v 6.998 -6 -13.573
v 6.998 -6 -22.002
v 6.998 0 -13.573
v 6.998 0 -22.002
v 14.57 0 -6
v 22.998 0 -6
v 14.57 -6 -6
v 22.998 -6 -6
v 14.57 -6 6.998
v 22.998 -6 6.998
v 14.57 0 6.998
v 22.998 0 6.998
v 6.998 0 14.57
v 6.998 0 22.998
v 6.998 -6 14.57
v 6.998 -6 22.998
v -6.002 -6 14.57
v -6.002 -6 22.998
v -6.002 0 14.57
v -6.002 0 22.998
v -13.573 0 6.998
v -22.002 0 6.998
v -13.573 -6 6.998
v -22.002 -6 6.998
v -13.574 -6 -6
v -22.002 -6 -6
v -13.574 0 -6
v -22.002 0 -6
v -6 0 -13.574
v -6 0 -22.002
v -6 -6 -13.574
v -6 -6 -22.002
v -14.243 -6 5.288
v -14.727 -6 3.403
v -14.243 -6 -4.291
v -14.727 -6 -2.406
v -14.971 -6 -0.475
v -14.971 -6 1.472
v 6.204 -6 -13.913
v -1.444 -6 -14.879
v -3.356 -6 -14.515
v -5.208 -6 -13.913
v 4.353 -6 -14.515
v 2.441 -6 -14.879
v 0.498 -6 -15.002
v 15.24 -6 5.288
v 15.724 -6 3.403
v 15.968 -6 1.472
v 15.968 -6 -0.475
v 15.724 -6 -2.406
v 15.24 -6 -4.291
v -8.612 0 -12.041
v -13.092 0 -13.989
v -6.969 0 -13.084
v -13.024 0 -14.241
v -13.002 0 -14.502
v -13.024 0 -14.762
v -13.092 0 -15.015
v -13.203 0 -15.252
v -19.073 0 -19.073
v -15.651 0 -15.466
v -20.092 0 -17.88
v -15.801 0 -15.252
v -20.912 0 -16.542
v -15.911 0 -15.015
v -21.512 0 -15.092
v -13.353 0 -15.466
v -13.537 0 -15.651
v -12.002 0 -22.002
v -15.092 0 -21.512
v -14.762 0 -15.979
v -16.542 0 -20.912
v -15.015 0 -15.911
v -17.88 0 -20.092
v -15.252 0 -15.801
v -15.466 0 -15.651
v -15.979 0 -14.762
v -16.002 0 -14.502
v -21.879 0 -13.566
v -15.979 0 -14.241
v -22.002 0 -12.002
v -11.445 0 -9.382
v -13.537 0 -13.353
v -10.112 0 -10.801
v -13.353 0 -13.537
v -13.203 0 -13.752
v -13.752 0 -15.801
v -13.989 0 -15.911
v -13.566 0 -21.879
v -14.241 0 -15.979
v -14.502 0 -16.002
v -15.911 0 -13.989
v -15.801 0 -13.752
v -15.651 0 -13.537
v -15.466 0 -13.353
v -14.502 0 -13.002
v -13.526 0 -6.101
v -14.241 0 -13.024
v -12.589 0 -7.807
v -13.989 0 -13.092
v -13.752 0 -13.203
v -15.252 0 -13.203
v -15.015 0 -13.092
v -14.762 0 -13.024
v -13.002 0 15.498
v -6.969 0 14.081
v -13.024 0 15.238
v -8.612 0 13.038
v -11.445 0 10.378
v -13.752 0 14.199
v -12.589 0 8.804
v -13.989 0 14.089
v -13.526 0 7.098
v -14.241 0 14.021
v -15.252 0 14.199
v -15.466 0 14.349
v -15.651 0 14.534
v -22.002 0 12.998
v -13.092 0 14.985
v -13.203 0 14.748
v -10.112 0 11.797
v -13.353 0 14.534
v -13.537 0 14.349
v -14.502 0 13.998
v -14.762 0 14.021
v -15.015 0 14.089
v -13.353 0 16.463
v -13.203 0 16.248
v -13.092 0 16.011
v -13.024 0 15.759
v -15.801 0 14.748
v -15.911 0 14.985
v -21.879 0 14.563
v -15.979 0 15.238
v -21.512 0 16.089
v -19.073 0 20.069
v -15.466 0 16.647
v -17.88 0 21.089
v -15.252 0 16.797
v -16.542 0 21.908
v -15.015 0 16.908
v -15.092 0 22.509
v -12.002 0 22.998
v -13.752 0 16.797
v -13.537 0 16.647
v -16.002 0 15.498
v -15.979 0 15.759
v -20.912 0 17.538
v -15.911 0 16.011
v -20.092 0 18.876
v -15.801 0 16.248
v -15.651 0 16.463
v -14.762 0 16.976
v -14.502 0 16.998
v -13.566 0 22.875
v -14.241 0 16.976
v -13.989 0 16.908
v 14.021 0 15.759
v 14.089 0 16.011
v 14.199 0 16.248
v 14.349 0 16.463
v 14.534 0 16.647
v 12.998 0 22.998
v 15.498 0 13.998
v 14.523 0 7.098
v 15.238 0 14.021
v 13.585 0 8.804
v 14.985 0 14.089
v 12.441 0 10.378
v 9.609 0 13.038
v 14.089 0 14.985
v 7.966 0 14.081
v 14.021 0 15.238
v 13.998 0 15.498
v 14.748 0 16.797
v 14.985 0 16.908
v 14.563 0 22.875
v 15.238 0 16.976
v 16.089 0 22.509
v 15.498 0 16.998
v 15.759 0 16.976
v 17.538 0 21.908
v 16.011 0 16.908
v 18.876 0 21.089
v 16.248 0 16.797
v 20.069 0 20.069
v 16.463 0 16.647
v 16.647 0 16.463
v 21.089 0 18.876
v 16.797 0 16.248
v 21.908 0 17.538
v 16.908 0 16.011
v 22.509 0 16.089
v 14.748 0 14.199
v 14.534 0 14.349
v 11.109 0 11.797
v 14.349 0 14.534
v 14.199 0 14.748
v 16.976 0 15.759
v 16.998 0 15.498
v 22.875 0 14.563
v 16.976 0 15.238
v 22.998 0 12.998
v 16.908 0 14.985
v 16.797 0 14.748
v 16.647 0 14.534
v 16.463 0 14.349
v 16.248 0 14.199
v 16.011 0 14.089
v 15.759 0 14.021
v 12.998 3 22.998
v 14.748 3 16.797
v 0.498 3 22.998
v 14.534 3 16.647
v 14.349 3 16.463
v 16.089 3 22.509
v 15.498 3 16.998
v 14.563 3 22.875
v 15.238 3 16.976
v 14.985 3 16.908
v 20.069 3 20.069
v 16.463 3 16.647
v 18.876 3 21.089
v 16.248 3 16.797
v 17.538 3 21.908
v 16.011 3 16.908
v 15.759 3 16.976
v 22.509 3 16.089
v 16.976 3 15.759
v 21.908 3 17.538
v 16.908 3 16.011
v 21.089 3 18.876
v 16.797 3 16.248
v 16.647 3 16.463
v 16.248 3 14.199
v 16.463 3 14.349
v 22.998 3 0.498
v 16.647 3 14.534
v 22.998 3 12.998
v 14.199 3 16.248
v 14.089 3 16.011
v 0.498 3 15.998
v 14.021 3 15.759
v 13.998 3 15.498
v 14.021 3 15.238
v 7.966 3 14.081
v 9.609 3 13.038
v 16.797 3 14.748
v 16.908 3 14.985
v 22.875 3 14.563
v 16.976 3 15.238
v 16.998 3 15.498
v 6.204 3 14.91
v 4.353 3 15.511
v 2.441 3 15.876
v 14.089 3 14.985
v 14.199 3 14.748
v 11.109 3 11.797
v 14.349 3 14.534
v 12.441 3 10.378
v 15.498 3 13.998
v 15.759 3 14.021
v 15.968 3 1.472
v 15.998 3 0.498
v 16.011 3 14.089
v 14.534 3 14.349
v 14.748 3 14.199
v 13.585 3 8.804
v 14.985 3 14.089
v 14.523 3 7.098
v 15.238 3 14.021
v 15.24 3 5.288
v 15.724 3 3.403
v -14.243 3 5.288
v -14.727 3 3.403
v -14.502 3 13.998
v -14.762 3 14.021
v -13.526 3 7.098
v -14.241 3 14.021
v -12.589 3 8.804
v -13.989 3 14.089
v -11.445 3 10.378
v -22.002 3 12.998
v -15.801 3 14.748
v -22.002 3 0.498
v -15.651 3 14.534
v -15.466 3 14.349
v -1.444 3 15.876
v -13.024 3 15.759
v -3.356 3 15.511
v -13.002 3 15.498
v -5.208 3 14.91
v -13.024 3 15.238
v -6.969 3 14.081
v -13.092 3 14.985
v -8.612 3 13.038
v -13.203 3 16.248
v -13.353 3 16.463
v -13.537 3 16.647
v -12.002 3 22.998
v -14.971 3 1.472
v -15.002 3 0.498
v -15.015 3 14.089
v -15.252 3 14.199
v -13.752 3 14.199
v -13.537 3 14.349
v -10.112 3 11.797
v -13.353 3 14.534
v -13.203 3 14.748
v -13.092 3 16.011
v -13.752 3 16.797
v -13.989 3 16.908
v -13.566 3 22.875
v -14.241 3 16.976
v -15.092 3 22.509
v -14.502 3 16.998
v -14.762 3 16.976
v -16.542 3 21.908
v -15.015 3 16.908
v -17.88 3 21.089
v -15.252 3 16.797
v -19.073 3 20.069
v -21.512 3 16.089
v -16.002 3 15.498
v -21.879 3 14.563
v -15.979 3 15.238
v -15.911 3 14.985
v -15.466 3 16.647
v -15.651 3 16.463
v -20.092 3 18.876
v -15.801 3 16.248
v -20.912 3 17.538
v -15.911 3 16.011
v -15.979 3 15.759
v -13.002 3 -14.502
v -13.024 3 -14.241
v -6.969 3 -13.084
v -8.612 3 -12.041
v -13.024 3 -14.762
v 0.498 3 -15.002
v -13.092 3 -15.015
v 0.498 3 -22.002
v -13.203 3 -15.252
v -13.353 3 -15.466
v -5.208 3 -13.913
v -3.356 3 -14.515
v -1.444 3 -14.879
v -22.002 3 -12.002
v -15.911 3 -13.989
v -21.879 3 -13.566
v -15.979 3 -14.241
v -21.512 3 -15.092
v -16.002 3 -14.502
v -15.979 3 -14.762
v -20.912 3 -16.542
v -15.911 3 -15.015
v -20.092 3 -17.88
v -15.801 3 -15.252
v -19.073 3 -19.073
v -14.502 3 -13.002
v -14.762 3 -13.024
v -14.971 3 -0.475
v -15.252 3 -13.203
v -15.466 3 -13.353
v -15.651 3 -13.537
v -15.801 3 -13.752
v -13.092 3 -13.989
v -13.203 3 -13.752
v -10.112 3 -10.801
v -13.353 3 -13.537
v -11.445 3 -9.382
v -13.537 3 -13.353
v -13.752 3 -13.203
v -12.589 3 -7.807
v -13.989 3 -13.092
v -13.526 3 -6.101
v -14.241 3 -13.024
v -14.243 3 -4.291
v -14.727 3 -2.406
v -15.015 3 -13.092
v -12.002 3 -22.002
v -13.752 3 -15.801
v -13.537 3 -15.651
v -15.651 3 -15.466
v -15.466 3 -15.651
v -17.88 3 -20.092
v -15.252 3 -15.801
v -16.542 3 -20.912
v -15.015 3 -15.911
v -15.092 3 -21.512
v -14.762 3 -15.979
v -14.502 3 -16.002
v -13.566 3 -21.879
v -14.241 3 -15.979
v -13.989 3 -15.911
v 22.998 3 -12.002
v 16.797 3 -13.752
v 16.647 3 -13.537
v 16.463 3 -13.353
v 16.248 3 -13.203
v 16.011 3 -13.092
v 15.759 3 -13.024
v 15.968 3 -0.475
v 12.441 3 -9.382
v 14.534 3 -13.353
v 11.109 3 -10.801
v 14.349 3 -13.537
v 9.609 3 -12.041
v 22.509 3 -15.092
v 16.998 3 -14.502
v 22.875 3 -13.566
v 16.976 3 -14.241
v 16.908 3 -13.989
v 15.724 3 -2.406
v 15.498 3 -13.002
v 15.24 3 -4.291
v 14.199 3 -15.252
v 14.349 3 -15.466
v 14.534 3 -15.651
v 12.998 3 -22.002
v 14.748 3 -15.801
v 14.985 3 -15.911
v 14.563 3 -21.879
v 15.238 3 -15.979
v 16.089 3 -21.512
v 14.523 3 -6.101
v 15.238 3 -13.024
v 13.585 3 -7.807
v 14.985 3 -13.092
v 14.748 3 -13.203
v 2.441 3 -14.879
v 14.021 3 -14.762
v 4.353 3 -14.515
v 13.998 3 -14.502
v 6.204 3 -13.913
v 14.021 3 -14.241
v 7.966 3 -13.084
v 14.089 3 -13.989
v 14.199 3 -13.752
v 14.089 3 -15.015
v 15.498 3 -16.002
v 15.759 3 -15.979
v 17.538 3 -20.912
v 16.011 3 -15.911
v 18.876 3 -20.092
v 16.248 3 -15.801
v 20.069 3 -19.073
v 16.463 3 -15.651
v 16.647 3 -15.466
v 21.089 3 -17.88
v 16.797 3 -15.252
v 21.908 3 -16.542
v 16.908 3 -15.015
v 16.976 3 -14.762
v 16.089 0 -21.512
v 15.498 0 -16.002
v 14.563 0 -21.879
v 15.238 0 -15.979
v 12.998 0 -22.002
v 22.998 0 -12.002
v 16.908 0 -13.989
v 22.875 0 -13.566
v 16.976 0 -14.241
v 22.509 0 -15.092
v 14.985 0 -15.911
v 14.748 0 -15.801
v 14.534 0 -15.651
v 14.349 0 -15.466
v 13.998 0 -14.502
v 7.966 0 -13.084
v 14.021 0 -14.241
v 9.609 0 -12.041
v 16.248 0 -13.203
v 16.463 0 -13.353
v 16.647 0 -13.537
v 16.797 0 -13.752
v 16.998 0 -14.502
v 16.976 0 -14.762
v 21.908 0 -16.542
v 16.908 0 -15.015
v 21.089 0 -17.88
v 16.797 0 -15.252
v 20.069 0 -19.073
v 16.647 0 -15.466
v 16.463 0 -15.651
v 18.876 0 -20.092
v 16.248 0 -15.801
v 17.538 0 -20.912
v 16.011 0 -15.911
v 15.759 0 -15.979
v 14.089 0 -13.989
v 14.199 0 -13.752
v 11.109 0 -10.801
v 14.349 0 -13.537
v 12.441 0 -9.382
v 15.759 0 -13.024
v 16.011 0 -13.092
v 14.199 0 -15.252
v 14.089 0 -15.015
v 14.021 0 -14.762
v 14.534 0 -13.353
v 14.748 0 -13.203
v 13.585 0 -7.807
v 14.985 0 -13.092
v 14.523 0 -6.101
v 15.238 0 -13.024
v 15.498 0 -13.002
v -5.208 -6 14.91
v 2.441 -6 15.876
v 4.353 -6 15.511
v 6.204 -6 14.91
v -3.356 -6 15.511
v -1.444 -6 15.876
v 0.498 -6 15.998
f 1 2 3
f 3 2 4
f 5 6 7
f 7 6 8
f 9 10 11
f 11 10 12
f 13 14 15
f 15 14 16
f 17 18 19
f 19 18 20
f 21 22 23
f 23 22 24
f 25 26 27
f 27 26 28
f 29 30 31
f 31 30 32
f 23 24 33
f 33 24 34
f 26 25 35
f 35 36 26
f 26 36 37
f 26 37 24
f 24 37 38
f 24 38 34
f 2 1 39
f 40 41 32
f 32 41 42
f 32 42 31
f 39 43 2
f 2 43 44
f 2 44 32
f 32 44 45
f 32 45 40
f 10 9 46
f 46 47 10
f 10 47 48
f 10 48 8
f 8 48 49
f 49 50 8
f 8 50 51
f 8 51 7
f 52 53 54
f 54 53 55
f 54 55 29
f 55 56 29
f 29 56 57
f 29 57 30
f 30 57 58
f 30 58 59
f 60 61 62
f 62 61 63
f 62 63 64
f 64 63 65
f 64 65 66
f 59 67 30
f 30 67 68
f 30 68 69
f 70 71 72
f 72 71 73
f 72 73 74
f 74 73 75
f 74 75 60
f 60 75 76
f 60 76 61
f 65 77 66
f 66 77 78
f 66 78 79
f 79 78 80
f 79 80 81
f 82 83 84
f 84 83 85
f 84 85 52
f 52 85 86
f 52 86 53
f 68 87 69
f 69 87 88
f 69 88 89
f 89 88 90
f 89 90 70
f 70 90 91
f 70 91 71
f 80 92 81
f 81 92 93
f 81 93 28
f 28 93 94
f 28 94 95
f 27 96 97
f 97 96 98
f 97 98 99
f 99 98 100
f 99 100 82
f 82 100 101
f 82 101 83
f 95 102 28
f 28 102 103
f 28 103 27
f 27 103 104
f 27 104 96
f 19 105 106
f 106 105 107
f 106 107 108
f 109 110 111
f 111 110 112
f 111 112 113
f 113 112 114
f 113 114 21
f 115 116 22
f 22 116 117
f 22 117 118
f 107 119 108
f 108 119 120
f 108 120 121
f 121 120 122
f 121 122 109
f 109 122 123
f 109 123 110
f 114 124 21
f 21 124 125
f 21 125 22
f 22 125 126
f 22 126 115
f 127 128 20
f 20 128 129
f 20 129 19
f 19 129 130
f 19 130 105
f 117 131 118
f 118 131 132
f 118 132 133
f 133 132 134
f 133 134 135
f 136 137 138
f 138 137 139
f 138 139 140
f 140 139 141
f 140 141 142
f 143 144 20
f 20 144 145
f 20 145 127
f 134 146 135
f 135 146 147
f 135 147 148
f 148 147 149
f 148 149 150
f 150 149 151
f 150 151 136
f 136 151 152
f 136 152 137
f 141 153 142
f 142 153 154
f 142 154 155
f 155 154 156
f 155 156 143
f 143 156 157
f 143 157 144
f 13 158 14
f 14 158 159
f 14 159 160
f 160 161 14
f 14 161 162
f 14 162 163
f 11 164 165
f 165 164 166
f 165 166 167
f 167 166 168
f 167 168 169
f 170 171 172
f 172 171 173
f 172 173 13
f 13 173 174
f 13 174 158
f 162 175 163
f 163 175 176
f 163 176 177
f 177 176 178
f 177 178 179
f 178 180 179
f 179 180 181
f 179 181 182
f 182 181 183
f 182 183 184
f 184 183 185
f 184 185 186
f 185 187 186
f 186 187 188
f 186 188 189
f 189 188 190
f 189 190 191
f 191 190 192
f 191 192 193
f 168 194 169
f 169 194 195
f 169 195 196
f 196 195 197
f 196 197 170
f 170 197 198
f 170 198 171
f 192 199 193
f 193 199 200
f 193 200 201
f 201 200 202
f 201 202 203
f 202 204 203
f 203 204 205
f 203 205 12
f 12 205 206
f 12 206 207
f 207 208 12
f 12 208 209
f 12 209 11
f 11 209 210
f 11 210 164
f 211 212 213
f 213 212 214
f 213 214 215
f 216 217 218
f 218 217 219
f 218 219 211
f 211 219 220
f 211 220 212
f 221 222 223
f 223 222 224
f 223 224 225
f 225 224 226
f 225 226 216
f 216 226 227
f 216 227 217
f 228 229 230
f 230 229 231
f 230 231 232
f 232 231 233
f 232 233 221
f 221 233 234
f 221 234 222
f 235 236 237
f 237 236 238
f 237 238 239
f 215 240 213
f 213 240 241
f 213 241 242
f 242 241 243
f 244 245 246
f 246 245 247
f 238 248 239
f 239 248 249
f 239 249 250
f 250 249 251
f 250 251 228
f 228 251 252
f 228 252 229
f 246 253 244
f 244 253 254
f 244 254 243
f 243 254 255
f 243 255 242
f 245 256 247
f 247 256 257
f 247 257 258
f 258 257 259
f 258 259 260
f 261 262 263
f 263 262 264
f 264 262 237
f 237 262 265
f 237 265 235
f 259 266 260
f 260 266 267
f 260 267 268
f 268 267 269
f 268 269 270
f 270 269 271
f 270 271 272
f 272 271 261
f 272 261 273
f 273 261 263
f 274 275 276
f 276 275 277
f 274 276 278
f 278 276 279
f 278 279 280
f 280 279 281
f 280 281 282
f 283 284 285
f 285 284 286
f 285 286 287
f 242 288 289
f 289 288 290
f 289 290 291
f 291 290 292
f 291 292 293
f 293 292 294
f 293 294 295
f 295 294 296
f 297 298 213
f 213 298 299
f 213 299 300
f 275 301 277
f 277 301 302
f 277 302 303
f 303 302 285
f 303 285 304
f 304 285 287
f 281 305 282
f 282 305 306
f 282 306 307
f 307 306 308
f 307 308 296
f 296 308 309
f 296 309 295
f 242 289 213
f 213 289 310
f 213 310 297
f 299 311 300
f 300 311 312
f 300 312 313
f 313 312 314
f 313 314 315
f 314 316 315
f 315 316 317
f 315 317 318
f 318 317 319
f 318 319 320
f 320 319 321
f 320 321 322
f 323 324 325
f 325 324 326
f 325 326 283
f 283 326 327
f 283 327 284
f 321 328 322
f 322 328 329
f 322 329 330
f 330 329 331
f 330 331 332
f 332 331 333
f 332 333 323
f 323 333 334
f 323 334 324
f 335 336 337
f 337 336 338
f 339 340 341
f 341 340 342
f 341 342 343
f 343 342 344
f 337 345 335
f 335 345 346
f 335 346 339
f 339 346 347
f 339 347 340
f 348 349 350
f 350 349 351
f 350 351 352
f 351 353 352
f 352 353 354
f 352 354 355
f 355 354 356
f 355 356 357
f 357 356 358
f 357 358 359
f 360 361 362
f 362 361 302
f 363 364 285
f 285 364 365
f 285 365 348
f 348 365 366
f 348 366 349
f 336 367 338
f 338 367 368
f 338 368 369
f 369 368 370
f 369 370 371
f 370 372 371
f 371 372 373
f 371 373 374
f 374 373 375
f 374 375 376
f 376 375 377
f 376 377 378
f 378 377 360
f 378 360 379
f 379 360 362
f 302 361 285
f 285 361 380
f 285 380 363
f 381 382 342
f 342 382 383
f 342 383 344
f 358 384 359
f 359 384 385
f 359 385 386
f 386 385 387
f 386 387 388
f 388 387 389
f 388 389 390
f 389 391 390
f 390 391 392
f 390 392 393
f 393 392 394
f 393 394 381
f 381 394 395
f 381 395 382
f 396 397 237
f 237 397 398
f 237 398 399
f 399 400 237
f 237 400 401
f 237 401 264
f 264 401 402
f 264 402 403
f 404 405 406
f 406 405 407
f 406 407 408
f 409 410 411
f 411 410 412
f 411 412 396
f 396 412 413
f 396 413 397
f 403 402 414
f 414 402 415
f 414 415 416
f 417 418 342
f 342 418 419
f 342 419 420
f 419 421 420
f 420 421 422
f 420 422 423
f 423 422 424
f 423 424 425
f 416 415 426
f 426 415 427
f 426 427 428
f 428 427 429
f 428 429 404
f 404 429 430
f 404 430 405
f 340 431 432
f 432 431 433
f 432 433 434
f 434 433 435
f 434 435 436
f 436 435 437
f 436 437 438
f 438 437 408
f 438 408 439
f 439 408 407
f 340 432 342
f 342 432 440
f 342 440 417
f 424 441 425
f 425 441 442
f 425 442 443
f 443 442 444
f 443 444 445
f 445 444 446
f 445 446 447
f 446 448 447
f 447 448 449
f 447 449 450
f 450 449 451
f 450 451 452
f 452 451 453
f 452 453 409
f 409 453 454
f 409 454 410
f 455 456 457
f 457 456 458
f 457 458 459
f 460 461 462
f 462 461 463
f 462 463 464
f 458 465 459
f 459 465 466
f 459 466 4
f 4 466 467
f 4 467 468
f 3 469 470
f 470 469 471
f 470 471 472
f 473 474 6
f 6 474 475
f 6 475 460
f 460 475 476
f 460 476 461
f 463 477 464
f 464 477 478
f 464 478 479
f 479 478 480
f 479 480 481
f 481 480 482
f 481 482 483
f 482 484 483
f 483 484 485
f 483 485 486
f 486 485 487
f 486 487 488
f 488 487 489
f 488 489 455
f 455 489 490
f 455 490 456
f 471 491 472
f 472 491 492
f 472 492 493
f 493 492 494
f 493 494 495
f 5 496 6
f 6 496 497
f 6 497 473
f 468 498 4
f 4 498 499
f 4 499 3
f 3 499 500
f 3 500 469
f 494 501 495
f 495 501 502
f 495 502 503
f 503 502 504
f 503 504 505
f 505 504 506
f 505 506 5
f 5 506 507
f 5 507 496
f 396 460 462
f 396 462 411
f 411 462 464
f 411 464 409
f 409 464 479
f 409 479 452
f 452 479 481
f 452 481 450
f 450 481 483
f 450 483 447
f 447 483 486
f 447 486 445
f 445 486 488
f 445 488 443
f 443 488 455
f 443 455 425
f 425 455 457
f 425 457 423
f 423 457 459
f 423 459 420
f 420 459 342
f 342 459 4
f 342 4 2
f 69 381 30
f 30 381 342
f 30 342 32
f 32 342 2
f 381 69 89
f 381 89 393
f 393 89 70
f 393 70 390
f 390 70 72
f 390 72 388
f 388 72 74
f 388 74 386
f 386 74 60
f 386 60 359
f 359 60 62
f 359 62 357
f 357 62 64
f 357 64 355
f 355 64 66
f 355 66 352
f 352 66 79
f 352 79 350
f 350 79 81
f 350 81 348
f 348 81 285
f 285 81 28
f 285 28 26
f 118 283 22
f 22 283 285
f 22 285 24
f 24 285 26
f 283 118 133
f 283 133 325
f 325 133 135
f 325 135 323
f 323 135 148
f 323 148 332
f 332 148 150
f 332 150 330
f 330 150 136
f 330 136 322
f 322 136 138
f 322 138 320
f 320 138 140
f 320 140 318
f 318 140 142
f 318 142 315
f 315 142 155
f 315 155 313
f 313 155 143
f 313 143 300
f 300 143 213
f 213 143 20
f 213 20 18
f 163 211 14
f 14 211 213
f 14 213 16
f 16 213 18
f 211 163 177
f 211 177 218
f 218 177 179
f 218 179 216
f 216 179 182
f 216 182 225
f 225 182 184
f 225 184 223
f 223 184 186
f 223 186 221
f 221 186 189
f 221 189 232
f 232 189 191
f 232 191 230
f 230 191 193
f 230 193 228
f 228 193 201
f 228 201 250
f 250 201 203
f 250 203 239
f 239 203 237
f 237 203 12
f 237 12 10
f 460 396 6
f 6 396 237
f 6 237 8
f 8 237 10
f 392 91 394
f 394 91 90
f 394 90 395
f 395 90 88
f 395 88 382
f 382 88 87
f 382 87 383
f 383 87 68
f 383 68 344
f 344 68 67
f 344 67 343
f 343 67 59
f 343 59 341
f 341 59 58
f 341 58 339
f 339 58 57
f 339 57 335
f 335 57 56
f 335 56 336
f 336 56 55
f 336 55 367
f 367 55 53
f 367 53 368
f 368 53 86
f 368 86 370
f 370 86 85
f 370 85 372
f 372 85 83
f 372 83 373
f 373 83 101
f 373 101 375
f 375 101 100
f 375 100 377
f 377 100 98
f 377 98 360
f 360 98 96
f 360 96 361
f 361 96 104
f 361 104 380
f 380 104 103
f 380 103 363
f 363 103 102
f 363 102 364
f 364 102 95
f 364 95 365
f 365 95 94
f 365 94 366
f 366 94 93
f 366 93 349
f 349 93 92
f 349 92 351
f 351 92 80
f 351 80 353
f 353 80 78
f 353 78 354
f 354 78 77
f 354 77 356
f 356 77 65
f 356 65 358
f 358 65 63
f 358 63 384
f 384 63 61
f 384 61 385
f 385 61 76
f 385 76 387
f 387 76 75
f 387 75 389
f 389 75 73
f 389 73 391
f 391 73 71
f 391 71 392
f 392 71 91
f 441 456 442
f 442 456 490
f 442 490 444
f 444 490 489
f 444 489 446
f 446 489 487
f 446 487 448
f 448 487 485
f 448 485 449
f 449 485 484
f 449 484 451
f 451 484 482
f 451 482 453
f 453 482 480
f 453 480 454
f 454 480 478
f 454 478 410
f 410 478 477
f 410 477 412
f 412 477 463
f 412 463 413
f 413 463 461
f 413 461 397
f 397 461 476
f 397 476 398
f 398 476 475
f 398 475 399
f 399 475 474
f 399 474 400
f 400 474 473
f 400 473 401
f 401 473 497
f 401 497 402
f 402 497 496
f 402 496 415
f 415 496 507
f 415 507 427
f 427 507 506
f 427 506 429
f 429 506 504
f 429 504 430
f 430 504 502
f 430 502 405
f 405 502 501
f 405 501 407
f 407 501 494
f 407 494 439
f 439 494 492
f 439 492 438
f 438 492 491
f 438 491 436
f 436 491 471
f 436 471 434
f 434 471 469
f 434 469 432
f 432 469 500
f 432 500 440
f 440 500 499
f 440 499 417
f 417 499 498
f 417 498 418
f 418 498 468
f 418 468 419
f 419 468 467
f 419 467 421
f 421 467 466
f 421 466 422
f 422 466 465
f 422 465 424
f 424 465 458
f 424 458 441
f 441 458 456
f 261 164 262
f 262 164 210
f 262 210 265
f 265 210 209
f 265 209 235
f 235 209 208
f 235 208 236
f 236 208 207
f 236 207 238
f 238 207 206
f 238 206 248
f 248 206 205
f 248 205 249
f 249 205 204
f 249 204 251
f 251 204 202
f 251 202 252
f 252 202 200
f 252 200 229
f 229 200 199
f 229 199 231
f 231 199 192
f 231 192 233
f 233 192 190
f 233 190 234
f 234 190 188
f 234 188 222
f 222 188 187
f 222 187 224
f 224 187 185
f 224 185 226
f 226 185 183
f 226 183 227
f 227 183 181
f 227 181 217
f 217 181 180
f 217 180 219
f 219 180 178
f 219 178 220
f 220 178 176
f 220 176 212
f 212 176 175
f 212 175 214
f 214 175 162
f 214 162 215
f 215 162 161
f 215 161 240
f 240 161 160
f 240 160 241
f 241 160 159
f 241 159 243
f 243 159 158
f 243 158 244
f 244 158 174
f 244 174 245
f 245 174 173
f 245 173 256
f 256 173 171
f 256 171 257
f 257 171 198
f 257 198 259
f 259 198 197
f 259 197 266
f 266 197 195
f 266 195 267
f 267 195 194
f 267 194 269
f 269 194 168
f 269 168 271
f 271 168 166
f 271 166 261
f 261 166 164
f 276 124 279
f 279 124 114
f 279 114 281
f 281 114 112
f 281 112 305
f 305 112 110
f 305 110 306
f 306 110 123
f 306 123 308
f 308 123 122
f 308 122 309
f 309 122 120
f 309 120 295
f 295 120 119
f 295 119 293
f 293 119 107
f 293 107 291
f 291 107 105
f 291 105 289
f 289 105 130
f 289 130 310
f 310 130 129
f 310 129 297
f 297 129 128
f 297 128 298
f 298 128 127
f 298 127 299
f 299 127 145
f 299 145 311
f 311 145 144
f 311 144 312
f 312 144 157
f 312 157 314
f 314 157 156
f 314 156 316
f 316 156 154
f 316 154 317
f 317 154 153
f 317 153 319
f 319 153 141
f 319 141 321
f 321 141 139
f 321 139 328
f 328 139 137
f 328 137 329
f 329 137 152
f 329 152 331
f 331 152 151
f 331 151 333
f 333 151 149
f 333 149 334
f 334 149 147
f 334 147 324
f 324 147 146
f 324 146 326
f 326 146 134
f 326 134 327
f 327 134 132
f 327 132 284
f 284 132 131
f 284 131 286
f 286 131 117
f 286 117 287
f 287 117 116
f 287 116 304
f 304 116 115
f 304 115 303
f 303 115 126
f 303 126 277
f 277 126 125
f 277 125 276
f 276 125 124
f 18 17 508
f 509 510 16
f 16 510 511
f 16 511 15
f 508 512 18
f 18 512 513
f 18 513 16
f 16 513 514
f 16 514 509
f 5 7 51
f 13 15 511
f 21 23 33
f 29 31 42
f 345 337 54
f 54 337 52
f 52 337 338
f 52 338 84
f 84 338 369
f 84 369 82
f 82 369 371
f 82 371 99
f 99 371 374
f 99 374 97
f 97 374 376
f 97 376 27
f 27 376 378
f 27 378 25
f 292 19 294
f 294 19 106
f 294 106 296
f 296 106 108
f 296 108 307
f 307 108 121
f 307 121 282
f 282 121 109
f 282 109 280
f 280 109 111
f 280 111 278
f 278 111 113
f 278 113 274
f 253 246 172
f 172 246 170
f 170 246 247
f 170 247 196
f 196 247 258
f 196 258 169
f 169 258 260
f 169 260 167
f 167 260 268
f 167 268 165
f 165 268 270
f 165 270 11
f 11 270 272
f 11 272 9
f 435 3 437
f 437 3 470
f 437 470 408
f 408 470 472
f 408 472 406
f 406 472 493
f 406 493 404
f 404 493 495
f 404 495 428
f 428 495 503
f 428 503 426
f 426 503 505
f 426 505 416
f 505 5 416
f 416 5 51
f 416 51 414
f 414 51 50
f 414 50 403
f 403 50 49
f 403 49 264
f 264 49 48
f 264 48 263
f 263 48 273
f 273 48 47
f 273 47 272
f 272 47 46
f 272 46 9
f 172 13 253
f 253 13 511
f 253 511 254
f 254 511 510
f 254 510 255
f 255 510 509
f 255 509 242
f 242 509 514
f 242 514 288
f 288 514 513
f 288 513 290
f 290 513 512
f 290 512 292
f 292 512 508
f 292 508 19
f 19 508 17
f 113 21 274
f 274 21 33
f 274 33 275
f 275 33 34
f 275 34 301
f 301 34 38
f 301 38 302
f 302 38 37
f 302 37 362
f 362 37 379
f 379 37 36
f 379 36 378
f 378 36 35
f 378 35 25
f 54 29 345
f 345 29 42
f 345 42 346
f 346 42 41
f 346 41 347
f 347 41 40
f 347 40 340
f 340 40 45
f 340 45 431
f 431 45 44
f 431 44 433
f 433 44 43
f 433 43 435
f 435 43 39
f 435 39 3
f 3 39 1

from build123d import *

# Parameters (mm, degrees)
SKETCH1_R           = 1.5
BOSS_EXTRUDE1_DEPTH = 3
BOSS_EXTRUDE2_DEPTH = 6
SKETCH3_R           = 15.5
CUT_EXTRUDE1_DEPTH  = 7.5


with BuildPart() as part:
    # Sketch1 → Boss-Extrude1 (new body)
    with BuildSketch(Plane(origin=(0, 0, 0), x_dir=(1, 0, 0), z_dir=(0, 1, 0))):
        with BuildLine():
            Line((12.998335315, -22.998335315), (-12.001664685, -22.998335315))
            ThreePointArc((-12.001664685, -22.998335315), (-19.072732497, -20.069403127), (-22.001664685, -12.998335315))
            Line((-22.001664685, -12.998335315), (-22.001664685, 12.001664685))
            ThreePointArc((-22.001664685, 12.001664685), (-19.072732497, 19.072732497), (-12.001664685, 22.001664685))
            Line((-12.001664685, 22.001664685), (12.998335315, 22.001664685))
            ThreePointArc((12.998335315, 22.001664685), (20.069403127, 19.072732497), (22.998335315, 12.001664685))
            Line((22.998335315, 12.001664685), (22.998335315, -12.998335315))
            ThreePointArc((22.998335315, -12.998335315), (20.069403127, -20.069403127), (12.998335315, -22.998335315))
        make_face()
        with Locations(Location((-14.501664685, 14.501664685, 0), (0, 0, 270))):
            Circle(SKETCH1_R, mode=Mode.SUBTRACT)
        with Locations(Location((15.498335315, 14.501664685, 0), (0, 0, 90))):
            Circle(SKETCH1_R, mode=Mode.SUBTRACT)
        with Locations(Location((15.498335315, -15.498335315, 0), (0, 0, 270))):
            Circle(SKETCH1_R, mode=Mode.SUBTRACT)
        with Locations(Location((-14.501664685, -15.498335315, 0), (0, 0, 90))):
            Circle(SKETCH1_R, mode=Mode.SUBTRACT)
    extrude(amount=BOSS_EXTRUDE1_DEPTH)

    # Sketch2 → Boss-Extrude2 (add)
    with BuildSketch(Plane(origin=(0, 0, 0), x_dir=(1, 0, 0), z_dir=(0, 1, 0))):
        Polygon((-6, 22.001664685), (-6, 6), (-22.001664685, 6), (-22.001664685, -6.998335315), (-6.001664685, -6.998335315), (-6.001664685, -22.998335315), (6.998335315, -22.998335315), (6.998335315, -6.998335315), (22.998335315, -6.998335315), (22.998335315, 6), (6.998335315, 6), (6.998335315, 22.001664685), align=None)
    extrude(amount=-BOSS_EXTRUDE2_DEPTH)

    # Sketch3 → Cut-Extrude1 (cut, symmetric)
    with BuildSketch(Plane(origin=(0, 0, 0), x_dir=(1, 0, 0), z_dir=(0, 1, 0))):
        with Locations(Location((0.498335315, -0.498335315, 0), (0, 0, 114.787084328))):
            Circle(SKETCH3_R)
    extrude(amount=CUT_EXTRUDE1_DEPTH, both=True, mode=Mode.SUBTRACT)


solid = part.part
